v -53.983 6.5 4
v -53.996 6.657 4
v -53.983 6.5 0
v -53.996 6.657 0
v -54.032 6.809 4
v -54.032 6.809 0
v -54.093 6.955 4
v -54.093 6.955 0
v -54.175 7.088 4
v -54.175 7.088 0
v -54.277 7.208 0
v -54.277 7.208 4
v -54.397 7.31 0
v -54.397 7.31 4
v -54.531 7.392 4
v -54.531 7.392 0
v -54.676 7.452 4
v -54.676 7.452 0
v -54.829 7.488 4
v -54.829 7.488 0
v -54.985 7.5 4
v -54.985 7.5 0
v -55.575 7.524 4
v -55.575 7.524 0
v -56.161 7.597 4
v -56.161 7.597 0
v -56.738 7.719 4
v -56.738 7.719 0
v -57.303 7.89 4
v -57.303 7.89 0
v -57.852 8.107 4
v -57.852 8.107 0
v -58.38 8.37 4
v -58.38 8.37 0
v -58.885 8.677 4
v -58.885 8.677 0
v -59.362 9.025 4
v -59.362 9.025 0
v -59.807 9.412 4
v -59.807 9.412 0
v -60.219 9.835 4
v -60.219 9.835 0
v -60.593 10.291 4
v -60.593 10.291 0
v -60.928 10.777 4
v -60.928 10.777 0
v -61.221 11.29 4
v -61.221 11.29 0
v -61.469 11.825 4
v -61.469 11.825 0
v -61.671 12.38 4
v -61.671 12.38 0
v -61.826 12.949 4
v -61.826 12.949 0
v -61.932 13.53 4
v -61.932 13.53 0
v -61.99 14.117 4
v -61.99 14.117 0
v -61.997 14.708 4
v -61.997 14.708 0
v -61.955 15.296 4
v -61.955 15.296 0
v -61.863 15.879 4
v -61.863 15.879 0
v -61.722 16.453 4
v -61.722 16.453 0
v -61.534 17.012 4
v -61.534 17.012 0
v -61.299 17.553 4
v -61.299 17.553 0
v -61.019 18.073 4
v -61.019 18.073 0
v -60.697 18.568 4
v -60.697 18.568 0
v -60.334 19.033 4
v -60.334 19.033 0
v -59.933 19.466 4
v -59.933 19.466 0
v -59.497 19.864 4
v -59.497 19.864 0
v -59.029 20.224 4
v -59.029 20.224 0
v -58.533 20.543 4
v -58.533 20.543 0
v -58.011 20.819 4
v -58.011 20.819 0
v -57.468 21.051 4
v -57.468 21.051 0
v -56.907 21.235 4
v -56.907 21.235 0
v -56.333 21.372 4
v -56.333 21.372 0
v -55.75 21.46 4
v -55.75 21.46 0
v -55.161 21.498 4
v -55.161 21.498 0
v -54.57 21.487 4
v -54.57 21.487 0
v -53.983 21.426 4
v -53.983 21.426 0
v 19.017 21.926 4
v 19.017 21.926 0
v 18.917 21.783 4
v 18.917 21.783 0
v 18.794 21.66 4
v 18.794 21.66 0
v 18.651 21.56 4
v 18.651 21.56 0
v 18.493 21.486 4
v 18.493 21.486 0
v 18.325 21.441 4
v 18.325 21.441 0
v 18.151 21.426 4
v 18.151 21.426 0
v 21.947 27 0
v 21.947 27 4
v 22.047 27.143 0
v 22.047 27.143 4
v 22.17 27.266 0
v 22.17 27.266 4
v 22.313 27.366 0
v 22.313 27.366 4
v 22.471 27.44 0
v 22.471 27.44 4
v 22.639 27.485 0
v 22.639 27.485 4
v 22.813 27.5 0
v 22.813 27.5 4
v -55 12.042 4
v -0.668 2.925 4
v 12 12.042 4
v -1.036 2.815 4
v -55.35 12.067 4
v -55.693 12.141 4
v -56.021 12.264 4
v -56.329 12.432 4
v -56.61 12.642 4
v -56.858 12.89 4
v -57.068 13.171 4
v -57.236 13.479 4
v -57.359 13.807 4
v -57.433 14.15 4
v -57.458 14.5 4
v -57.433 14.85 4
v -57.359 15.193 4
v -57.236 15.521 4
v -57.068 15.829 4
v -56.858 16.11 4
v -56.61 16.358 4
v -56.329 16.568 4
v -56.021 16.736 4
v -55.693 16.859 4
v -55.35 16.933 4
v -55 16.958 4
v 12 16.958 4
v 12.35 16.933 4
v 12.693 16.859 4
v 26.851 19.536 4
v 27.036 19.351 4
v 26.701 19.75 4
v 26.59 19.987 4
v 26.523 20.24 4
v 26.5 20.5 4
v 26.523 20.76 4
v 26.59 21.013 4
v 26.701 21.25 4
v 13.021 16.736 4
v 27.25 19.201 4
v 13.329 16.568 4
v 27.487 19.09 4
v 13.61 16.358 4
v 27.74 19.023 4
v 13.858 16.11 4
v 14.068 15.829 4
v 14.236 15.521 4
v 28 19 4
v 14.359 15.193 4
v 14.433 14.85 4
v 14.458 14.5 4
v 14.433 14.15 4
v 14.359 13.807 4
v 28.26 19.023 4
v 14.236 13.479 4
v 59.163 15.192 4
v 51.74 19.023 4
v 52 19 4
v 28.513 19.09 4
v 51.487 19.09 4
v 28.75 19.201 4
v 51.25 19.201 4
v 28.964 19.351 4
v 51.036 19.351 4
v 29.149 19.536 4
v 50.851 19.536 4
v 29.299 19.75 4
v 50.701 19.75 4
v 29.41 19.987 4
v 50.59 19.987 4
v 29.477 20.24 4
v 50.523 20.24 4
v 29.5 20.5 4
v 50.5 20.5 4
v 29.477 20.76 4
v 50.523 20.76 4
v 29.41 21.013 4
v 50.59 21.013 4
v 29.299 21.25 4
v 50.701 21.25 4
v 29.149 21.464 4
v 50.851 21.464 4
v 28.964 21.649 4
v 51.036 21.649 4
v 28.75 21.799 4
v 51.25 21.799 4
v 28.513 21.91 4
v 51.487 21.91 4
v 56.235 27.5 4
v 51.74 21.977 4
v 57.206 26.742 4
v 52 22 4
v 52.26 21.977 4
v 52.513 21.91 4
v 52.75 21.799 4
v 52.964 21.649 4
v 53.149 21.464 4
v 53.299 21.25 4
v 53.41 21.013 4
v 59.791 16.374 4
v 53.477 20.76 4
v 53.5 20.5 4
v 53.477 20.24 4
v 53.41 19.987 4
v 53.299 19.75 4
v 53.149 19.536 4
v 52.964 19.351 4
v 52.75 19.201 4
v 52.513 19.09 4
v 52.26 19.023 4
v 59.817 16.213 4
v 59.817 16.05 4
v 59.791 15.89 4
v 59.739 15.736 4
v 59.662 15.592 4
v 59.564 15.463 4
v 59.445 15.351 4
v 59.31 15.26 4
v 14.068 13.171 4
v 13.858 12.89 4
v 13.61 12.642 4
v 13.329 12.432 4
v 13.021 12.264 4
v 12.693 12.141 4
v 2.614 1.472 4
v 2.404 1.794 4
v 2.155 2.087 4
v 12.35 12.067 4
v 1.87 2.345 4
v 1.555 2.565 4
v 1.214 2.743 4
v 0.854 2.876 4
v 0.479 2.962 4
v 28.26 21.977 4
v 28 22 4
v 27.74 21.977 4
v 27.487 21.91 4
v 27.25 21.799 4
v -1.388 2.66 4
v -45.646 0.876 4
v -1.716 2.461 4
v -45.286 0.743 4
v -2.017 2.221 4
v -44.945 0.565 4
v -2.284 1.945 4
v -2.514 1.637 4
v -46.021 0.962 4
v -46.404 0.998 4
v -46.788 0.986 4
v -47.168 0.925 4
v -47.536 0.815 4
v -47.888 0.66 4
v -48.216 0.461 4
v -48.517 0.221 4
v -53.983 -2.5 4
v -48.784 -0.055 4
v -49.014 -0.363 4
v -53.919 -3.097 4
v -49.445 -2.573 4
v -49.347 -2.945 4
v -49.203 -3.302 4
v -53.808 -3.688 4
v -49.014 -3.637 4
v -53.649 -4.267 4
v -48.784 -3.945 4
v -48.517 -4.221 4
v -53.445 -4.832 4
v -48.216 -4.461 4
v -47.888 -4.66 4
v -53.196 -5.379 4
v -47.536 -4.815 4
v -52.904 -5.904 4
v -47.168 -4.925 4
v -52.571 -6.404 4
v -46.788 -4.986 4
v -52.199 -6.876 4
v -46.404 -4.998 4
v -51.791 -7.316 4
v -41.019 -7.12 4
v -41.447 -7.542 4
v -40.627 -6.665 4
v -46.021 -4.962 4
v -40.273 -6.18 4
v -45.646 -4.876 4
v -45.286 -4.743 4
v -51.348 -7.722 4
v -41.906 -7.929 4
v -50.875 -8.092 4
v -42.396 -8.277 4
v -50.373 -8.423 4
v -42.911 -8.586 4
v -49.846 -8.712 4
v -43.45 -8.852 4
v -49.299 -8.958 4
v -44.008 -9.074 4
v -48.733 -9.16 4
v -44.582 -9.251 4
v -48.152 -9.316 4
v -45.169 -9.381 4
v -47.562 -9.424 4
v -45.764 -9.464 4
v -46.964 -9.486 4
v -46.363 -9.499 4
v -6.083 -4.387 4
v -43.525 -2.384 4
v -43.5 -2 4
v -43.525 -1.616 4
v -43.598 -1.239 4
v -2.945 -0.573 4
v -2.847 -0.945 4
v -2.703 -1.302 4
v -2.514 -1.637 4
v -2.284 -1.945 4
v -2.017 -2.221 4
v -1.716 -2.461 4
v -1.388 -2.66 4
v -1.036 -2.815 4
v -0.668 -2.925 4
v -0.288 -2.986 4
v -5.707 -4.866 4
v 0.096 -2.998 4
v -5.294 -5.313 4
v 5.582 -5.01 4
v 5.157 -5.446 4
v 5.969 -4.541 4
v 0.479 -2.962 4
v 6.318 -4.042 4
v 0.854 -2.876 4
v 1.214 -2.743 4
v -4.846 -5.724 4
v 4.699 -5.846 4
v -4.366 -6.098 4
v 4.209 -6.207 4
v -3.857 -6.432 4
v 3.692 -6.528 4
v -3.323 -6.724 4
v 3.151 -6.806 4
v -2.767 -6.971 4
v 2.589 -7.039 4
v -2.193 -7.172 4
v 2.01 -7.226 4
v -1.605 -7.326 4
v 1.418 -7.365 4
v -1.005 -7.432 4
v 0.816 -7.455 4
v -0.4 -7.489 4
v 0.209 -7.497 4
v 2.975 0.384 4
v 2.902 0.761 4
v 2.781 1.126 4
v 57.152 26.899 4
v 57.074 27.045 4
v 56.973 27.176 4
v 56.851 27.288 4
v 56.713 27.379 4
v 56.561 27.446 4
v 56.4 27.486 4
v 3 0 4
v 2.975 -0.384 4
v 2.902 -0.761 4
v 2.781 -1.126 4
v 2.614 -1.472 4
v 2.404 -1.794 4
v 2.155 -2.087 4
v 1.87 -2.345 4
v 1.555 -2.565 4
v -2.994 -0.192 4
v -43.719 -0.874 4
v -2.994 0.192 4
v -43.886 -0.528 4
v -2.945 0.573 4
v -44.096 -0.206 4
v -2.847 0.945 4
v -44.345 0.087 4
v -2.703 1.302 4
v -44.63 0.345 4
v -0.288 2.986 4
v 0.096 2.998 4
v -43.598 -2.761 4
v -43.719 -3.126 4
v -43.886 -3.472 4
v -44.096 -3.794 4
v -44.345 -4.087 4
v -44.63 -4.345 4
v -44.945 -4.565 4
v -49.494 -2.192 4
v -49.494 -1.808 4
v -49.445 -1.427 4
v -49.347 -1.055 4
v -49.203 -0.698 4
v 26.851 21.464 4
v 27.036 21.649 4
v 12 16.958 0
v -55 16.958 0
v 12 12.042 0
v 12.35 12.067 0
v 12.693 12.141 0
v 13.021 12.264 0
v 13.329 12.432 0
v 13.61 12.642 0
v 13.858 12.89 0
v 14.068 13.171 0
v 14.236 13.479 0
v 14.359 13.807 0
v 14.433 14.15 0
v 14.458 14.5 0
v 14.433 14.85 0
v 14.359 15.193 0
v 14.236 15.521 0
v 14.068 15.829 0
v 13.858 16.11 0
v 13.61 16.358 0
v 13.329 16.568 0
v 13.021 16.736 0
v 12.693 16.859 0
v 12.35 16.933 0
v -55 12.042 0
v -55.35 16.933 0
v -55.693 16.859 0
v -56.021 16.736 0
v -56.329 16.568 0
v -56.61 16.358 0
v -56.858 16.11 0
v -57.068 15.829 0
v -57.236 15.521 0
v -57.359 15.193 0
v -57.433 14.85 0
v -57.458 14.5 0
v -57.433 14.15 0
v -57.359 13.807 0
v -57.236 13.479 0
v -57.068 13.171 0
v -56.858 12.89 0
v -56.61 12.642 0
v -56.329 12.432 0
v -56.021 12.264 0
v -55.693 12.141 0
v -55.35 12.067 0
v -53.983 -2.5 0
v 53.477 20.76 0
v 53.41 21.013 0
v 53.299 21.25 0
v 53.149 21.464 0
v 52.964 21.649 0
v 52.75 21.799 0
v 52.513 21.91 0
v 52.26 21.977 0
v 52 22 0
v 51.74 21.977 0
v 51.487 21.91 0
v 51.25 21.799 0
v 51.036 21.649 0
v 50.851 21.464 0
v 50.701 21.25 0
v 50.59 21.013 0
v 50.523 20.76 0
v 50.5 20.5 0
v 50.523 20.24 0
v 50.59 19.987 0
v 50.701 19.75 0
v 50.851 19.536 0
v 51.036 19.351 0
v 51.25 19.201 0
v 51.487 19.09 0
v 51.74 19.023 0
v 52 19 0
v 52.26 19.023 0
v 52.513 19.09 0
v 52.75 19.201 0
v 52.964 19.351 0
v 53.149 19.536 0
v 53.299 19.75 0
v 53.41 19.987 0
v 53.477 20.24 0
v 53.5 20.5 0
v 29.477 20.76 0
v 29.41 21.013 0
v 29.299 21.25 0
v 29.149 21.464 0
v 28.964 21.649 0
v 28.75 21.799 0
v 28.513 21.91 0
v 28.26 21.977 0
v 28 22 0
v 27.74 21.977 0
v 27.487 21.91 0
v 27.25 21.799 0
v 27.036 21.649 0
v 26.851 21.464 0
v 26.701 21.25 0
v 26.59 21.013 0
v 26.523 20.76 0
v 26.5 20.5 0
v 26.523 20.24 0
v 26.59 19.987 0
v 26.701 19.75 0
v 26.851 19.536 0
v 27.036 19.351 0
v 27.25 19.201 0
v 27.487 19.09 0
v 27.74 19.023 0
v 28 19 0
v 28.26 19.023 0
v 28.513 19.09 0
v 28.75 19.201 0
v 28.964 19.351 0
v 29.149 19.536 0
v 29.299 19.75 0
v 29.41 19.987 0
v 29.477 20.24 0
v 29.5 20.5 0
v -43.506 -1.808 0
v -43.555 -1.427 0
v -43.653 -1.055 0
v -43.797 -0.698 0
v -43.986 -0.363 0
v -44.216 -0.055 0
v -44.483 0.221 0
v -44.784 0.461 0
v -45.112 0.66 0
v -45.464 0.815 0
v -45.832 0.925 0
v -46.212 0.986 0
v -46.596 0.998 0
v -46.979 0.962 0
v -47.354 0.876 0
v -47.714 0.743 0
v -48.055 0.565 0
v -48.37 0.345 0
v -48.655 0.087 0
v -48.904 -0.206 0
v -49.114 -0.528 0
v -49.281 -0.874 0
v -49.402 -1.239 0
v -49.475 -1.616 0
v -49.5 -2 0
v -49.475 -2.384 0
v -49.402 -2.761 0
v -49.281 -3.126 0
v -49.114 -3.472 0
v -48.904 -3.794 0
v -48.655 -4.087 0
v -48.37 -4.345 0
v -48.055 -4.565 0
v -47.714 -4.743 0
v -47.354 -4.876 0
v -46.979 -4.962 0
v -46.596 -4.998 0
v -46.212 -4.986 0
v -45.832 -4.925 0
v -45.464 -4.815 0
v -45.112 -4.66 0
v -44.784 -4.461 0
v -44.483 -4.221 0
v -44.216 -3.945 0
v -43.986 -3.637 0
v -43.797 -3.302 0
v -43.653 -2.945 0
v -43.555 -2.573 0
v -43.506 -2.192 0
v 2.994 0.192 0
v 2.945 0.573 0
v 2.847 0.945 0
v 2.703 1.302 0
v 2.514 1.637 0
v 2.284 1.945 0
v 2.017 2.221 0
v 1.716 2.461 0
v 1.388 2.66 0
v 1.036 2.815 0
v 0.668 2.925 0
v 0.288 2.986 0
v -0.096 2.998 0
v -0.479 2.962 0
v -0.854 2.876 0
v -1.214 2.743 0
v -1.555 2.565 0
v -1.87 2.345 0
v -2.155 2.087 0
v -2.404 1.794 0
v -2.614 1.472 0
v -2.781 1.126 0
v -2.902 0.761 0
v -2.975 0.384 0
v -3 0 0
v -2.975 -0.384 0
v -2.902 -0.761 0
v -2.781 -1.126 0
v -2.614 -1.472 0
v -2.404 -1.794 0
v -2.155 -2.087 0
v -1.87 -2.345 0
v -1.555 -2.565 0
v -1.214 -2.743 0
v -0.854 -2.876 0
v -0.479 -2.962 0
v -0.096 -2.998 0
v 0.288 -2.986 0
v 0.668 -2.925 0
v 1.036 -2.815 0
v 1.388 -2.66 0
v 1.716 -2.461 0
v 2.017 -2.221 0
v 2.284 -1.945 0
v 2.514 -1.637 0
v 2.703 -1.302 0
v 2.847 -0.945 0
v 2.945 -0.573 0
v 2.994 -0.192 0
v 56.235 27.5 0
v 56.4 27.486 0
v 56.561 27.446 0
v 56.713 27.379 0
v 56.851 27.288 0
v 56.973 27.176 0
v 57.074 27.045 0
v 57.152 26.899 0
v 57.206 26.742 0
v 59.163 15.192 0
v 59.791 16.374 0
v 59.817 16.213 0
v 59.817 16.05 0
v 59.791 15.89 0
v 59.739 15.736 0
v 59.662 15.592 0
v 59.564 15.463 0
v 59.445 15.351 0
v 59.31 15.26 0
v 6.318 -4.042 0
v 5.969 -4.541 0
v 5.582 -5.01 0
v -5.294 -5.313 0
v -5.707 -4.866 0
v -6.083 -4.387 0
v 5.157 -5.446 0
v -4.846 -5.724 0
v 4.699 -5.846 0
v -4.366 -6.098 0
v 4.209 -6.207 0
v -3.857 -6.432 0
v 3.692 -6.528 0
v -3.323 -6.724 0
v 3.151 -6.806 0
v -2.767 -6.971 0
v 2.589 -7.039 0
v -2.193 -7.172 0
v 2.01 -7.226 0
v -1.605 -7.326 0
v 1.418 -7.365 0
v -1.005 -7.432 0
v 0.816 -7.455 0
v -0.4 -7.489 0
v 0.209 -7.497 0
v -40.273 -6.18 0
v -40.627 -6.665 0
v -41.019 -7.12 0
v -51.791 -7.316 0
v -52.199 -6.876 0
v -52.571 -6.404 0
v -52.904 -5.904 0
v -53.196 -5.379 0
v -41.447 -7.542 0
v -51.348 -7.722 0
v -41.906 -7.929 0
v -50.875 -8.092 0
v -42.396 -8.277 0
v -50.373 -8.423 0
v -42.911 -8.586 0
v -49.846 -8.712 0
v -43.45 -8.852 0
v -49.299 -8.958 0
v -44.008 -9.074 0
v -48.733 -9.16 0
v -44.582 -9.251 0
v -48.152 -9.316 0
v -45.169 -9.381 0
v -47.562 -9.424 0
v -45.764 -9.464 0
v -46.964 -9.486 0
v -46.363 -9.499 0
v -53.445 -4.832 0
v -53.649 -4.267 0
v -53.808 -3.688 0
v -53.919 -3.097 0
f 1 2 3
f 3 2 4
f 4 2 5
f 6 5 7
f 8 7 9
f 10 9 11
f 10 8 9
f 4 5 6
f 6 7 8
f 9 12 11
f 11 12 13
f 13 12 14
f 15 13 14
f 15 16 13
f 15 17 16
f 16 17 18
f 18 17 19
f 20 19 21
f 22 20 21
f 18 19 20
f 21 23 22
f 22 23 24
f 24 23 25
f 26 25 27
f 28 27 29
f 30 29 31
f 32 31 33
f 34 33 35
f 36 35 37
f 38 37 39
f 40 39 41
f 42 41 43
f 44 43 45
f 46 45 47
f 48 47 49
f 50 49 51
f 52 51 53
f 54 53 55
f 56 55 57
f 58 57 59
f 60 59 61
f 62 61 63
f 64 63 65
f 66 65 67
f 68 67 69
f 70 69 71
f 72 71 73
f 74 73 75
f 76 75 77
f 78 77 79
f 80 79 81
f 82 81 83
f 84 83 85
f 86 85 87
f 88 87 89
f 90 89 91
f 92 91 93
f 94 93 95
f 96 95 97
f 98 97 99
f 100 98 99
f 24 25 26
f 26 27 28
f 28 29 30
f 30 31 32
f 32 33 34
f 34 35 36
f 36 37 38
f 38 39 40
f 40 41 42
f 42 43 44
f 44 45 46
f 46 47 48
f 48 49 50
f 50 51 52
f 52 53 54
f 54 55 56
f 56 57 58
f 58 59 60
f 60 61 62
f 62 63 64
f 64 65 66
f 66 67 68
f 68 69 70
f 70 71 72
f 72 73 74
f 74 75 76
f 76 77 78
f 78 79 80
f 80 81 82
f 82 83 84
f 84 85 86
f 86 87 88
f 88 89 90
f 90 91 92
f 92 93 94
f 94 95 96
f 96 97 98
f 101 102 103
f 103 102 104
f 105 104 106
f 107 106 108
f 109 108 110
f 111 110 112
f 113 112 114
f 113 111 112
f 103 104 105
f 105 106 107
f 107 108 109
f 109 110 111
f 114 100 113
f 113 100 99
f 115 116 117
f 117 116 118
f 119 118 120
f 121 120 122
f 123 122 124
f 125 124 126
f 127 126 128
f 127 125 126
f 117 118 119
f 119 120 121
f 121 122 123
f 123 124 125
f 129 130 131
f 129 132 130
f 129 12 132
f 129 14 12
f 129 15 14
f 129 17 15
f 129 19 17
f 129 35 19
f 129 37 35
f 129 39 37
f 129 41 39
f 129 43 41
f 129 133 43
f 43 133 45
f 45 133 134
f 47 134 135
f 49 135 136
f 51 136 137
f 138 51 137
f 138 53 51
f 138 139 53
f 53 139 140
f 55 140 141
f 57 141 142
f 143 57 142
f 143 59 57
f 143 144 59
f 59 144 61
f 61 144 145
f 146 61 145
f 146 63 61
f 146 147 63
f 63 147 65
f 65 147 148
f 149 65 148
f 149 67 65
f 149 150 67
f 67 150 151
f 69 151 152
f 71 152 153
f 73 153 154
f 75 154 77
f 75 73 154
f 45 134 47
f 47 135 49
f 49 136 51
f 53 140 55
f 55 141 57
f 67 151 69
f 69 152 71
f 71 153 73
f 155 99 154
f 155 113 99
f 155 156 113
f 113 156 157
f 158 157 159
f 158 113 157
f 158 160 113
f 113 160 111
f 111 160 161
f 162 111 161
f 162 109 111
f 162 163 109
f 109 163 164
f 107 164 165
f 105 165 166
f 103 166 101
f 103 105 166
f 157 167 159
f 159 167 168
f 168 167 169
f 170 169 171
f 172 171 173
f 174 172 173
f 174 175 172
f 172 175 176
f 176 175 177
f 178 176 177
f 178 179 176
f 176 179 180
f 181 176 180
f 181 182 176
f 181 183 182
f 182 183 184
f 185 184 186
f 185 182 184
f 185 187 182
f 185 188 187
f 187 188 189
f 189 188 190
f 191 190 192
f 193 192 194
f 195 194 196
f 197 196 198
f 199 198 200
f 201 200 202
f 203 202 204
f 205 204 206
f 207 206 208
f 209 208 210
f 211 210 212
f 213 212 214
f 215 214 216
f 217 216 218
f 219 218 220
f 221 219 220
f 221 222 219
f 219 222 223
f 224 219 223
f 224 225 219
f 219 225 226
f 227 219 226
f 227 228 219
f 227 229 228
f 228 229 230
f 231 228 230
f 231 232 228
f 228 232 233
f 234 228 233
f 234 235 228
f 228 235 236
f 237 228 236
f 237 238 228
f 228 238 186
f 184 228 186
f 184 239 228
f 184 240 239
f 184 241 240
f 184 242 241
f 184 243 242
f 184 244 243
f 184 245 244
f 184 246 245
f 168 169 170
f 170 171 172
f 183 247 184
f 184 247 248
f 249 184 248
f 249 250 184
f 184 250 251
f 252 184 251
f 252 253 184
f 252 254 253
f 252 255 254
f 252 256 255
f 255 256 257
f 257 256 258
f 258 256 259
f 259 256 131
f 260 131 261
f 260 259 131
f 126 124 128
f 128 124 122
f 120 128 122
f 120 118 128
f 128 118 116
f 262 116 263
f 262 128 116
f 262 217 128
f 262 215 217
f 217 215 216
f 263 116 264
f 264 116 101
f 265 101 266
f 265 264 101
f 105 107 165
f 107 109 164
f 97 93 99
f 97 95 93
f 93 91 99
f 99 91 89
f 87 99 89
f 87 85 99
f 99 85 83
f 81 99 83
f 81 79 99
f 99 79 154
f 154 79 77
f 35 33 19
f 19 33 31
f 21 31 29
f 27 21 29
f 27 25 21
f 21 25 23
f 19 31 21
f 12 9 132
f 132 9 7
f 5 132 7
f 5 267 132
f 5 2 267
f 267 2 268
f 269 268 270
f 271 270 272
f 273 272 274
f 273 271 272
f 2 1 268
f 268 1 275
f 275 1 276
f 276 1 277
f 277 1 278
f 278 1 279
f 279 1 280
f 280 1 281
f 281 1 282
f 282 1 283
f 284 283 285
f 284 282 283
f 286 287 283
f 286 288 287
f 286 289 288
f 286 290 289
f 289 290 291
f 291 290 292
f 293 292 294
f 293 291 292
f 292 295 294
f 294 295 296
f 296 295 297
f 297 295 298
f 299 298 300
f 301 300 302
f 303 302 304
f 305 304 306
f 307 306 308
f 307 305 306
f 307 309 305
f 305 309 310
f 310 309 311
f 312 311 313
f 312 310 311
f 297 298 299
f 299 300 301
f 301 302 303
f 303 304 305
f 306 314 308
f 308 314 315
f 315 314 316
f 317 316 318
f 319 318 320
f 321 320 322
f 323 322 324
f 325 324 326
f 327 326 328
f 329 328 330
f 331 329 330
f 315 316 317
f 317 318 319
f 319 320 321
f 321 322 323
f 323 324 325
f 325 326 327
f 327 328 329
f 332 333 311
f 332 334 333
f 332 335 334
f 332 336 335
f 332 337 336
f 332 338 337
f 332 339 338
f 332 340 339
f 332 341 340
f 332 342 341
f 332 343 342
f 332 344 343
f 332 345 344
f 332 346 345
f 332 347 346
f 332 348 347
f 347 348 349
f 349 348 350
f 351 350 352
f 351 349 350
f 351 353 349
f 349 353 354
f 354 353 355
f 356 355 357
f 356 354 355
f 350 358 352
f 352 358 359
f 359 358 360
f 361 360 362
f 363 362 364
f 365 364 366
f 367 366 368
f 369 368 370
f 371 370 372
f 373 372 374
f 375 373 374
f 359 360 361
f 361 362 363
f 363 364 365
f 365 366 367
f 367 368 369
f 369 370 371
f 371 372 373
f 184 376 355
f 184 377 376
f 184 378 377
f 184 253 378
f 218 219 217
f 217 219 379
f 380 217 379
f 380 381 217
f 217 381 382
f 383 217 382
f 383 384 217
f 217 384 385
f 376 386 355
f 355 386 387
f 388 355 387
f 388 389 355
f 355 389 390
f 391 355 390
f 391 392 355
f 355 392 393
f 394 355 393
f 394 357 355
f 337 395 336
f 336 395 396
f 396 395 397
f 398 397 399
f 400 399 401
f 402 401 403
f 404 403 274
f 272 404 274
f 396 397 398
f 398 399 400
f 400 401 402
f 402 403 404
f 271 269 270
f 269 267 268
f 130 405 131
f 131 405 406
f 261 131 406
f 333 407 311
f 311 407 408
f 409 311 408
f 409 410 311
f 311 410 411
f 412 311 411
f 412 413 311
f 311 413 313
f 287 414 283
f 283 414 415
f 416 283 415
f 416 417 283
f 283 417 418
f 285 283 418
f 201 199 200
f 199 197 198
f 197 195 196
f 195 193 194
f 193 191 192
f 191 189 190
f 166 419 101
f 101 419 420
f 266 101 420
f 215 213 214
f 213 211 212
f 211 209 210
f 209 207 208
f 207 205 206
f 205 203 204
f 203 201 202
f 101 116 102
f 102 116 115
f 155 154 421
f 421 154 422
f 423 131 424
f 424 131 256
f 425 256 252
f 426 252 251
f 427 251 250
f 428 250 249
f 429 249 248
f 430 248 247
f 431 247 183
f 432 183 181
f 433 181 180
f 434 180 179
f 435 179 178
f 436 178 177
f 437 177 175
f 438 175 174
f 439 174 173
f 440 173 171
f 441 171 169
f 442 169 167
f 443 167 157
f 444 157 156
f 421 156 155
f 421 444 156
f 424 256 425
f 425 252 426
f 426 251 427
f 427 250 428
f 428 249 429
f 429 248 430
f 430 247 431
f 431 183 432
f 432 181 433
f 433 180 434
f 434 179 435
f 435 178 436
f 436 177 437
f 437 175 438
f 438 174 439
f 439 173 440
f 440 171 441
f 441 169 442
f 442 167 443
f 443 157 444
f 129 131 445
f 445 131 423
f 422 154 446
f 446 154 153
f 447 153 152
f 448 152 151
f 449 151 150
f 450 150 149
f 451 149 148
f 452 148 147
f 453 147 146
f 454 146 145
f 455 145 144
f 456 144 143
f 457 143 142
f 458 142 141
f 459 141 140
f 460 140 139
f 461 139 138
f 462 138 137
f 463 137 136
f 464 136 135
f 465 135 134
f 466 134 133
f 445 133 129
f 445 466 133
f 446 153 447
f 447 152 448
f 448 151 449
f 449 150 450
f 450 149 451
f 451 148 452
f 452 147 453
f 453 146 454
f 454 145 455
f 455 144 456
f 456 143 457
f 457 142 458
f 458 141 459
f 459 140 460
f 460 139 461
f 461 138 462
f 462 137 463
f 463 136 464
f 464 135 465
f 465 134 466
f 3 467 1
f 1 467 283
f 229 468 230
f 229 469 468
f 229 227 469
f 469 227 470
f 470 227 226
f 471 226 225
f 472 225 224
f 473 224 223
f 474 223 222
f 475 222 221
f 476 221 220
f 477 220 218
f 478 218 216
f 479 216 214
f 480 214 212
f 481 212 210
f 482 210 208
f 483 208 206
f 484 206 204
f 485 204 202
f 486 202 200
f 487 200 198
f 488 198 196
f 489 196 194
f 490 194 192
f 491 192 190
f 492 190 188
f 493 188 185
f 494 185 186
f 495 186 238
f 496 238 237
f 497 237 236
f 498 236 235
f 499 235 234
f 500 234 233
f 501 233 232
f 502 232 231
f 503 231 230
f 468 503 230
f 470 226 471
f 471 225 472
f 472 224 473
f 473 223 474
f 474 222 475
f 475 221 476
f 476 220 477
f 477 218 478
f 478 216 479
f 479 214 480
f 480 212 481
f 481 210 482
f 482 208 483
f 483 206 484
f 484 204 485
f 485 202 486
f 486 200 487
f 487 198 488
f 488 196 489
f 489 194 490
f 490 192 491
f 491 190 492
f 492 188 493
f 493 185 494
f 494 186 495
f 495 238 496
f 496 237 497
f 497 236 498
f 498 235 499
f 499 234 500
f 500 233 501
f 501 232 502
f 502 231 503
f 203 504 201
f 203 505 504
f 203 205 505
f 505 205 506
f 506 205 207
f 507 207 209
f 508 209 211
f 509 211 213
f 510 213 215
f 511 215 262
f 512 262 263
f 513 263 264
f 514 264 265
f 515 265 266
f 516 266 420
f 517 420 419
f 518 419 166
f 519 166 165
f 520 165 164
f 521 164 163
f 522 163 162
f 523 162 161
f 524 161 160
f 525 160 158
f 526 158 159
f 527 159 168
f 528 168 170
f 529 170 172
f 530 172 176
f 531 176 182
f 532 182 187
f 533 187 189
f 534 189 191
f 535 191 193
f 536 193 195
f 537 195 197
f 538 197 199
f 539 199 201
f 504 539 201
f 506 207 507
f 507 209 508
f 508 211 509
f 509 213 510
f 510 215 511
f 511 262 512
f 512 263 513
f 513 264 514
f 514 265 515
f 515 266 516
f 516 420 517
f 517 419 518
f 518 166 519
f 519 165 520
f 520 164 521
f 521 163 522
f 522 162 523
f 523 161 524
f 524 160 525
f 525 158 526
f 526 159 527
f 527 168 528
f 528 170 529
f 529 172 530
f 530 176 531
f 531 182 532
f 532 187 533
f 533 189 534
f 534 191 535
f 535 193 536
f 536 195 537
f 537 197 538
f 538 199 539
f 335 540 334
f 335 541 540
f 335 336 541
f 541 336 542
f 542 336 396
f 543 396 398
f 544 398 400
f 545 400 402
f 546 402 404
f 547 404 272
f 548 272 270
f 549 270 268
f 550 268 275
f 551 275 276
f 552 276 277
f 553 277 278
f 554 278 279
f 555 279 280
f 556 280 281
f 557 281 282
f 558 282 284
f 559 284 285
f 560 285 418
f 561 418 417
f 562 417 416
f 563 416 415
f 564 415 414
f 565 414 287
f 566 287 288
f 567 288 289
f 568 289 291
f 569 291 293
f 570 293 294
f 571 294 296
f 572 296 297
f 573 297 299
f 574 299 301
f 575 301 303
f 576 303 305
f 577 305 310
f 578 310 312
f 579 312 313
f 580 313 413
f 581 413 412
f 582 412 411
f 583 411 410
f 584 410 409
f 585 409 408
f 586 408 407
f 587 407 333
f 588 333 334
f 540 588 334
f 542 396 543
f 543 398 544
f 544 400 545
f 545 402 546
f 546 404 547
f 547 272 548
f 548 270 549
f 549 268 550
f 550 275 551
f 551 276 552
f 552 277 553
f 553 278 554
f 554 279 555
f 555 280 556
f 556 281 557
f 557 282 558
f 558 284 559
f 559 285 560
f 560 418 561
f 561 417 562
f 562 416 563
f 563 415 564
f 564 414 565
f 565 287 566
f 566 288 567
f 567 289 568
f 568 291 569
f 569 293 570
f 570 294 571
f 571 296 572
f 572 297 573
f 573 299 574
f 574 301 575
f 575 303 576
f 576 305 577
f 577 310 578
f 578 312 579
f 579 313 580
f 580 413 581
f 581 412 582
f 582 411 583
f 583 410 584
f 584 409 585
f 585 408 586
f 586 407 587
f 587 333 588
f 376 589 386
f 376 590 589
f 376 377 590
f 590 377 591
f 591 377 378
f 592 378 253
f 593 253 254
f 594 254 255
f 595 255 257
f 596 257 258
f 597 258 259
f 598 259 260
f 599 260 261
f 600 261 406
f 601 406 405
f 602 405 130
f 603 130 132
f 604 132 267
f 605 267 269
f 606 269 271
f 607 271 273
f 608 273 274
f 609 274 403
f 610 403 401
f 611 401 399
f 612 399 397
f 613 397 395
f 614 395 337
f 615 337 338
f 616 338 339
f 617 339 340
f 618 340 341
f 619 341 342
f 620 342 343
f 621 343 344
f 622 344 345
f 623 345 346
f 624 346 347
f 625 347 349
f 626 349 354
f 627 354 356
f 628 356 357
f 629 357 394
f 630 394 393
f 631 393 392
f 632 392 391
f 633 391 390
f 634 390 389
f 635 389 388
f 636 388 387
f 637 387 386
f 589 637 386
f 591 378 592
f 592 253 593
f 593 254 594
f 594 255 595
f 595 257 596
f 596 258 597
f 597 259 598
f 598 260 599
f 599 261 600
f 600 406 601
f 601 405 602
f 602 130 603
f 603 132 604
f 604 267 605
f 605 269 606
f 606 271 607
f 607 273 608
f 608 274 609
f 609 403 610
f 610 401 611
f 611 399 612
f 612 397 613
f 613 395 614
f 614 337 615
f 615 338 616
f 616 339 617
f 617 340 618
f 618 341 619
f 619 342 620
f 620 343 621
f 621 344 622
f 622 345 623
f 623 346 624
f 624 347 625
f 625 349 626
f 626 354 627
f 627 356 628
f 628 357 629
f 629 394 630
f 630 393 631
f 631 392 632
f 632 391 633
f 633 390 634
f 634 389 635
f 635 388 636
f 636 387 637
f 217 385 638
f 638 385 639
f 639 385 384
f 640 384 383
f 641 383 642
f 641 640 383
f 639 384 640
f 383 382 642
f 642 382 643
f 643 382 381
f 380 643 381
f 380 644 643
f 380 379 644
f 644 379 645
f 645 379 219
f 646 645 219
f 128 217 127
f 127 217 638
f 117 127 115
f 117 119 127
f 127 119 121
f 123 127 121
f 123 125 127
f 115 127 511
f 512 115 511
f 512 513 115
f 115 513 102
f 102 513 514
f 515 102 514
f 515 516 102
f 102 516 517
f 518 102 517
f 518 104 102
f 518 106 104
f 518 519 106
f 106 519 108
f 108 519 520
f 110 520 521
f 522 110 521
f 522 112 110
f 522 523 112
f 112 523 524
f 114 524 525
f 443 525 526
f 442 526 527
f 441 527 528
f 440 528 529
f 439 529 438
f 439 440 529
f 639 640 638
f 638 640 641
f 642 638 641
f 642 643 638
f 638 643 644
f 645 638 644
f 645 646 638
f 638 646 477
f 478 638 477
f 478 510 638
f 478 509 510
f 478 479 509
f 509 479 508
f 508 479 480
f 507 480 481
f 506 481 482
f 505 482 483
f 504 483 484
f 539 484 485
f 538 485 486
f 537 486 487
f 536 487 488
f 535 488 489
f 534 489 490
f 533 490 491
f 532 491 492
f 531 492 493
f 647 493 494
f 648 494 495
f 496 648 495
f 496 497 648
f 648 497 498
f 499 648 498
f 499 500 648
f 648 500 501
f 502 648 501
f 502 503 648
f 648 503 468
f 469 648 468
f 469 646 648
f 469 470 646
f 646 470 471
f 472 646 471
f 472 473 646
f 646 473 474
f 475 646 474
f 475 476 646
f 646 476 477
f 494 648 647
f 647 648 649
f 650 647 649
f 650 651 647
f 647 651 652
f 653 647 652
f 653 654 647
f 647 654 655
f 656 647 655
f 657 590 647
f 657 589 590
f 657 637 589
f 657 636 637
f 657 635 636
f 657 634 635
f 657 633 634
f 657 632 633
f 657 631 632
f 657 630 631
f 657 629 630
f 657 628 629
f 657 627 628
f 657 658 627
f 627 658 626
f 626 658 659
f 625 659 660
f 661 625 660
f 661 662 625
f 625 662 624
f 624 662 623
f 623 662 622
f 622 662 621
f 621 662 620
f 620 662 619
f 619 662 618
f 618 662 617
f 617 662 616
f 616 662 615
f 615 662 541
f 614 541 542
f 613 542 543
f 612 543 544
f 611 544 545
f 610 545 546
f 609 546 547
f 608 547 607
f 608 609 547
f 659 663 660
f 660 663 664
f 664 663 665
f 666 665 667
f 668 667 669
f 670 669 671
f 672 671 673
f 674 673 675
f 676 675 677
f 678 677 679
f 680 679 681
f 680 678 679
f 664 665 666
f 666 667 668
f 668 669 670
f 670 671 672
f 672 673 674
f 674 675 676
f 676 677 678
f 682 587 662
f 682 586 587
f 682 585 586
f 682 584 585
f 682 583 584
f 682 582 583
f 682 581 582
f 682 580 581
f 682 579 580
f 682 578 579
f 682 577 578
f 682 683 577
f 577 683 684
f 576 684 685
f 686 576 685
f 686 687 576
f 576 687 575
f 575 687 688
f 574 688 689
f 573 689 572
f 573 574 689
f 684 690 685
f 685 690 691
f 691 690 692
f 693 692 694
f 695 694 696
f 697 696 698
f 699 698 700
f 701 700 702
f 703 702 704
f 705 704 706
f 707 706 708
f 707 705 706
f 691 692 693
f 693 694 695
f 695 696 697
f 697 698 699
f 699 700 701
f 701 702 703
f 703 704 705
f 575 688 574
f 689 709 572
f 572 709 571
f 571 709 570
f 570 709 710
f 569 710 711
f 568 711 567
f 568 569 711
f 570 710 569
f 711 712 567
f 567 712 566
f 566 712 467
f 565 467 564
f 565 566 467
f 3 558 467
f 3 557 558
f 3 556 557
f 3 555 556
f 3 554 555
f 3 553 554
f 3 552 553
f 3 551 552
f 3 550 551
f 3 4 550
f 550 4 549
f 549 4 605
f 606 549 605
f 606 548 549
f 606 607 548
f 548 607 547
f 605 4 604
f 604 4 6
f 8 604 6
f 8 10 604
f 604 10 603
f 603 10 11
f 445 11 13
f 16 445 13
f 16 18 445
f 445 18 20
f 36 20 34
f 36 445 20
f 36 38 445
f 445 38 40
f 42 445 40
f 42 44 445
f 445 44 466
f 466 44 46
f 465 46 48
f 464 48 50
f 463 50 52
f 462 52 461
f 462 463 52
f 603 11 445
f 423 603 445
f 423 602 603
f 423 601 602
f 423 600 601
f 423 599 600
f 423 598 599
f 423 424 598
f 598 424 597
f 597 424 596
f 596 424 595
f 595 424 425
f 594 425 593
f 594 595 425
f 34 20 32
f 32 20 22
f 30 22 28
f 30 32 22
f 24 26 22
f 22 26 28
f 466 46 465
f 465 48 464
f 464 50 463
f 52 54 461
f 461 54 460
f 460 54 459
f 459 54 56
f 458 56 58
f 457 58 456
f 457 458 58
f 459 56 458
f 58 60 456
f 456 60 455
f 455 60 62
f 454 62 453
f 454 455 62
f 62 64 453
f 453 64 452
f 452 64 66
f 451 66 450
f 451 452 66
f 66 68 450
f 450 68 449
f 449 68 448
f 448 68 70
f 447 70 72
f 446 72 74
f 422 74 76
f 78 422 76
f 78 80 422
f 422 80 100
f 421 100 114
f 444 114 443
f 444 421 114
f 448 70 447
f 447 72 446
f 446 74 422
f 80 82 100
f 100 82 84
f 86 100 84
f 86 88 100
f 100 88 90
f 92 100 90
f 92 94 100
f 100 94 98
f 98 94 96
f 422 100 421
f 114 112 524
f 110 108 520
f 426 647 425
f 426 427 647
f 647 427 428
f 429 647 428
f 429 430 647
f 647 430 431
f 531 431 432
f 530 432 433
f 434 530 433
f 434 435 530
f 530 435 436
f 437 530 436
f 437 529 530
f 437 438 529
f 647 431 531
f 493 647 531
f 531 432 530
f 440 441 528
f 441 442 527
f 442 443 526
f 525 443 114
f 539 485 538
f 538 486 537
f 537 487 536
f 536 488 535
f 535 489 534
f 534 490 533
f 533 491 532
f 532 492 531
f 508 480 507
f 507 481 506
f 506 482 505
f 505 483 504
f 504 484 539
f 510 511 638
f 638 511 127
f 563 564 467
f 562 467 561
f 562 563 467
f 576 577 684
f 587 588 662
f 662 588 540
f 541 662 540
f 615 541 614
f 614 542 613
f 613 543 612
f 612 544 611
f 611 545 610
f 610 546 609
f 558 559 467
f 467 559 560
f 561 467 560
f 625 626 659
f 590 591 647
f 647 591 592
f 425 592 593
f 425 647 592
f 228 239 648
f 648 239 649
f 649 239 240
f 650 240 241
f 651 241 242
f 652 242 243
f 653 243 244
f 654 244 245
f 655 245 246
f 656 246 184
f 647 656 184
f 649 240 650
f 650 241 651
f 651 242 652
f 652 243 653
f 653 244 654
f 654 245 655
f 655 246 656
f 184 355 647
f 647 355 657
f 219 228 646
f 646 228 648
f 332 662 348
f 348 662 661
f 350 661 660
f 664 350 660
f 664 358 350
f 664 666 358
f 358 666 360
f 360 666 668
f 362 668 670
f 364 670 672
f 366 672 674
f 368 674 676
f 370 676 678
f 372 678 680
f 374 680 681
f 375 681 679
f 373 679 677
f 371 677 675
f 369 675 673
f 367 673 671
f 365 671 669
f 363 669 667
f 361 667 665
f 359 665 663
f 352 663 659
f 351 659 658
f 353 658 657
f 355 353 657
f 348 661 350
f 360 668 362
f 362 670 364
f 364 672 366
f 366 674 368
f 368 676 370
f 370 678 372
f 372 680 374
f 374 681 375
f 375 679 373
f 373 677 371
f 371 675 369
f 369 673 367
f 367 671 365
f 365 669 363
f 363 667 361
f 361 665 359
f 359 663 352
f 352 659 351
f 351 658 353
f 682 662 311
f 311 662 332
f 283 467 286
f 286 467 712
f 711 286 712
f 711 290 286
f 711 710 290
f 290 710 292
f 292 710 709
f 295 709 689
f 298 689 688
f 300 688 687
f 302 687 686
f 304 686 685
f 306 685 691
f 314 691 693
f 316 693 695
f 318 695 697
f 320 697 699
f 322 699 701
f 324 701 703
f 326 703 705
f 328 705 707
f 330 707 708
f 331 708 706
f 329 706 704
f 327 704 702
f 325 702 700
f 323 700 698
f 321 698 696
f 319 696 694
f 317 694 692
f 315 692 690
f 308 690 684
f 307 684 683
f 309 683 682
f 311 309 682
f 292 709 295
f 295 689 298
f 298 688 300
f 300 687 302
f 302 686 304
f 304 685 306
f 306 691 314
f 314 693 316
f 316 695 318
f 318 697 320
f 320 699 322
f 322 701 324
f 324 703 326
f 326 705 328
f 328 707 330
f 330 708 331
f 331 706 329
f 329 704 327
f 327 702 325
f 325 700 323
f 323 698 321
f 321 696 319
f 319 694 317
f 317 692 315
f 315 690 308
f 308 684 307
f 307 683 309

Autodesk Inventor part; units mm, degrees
ref_plane "YZ Plane" through (0, 0, 0) normal (1, 0, 0) x (0, 1, 0)
ref_plane "XZ Plane" through (0, 0, 0) normal (0, 1, 0) x (-1, 0, 0)
ref_plane "XY Plane" through (0, 0, 0) normal (0, 0, 1) x (1, 0, 0)
sketch "Base" plane through (0, 0, 0) normal (0, 0, 1) x (1, 0, 0)
  arc A0 (-53.9833, -2.5) -> (-40.2726, -6.1797) centre (-46.5, -2) ccw
  line L0 (-6.0829, -4.3873) -> (-40.2726, -6.1797)
  arc A1 (-6.0829, -4.3873) -> (6.3177, -4.0419) centre (0, 0) ccw
  line L1 (60.0086, 15.5) -> (6.3177, -4.0419)
  circle A2 centre (52, 20.5) radius 1.5 construction
  circle A3 centre (28, 20.5) radius 1.5 construction
  line L2 (57.0167, 27.5) -> (60.0086, 15.5)
  line L3 (57.0167, 27.5) -> (-53.9833, 27.5)
  line L4 (-53.9833, -2.5) -> (-53.9833, 27.5)
  line L5 (52, 20.5) -> (28, 20.5) construction
  dimension "d3" = 24
  dimension "d4" = 3
  dimension "d7" = 104
  dimension "d16" = 20
  dimension "d17" = 111
  dimension "d19" = 30
  dimension "d22" = 86.999
  dimension "d25" = 28
  dimension "d26" = 7.5
  dimension "d31" = 27.5
  dimension "d32" = 12
  dimension "d45" = 46.5
  dimension "d46" = 2
  dimension "d47" = 4.5
  dimension "d64" = 7
extrude "BaseFeature" add sketch "Base" along normal blind 4
fillet "EndFilletsFeature" radius 1 2 edges at (60.0086, 15.5, 2) (57.0167, 27.5, 2)
sketch "BaseMountHoles" plane through (0, 0, 0) normal (0, 0, -1) x (-1, 0, 0)
  arc A0 (40.2726, -6.1797) -> (53.9833, -2.5) centre (46.5, -2) ccw projected
  point P0 (0, 0)
hole "BaseMountHolesFeature" at (-46.5, -2, 0) at (0, 0, 0) direction (0, 0, 1) diameter 6 end through all
sketch "CuffMountHoles" plane through (0, 0, 0) normal (0, 0, -1) x (-1, 0, 0)
  circle A0 centre (-52, 20.5) radius 1.5 construction
  circle A1 centre (-28, 20.5) radius 1.5 construction
  point P0 (0, 0)
hole "CuffMountHolesFeature" at (52, 20.5, 0) at (28, 20.5, 0) direction (0, 0, 1) diameter 3 end through all
sketch "ExternalAssemblyGeometry" plane through (0, 0, 4) normal (0, 0, 1) x (1, 0, 0)
  circle A0 centre (-4.2211, 14.5) radius 2.4585 construction
  circle A1 centre (-12.2211, 14.5) radius 2.4585 construction
  circle A2 centre (-33.6105, 14.5) radius 2.4585 construction
  circle A3 centre (-55, 14.5) radius 2.4585 construction
  line L0 (16.9953, 21.5) -> (-152.0047, 21.5) construction
  line L1 (-55, 14.5) -> (12, 14.5) construction
  circle A4 centre (-55, 14.5) radius 7
  line L2 (-53.9833, 27.5) -> (56.2354, 27.5) projected
  line L3 (-53.9833, -2.5) -> (-53.9833, 27.5) projected
  dimension "d57" = 67
  dimension "d72" = 14
  dimension "d73" = 6
  dimension "d74" = 169
  dimension "d75" = 4.917
  dimension "d76" = 8
  dimension "d77" = 1.0167
  dimension "d78" = 21.3895
  dimension "d79" = 21.3895
  dimension "d80" = 70.9786
extrude "MountRailEndFeature" add sketch "ExternalAssemblyGeometry" against normal up to surface (4 mm away)
sketch "MountRail" plane through (0, 0, 0) normal (0, 0, -1) x (-1, 0, 0)
  line L0 (55, 14.5) -> (-12, 14.5) construction
  circle A0 centre (55, 14.5) radius 2.4585 construction
  circle A1 centre (-12, 14.5) radius 2.4585
  circle A2 centre (55, 14.5) radius 2.4585
  line L1 (55, 12.0415) -> (-12, 12.0415)
  line L2 (55, 16.9585) -> (-12, 16.9585)
  point P0 (0, 0)
extrude "MountRailFeature" cut sketch "MountRail" against normal through all
sketch "TopAngleCut" plane through (0, 0, 0) normal (0, 0, -1) x (-1, 0, 0)
  line L0 (53.9833, 27.5) -> (-56.2354, 27.5) construction
  line L1 (-22.2354, 27.5) -> (-18.7284, 21.4258)
  line L2 (53.9833, 21.4258) -> (-18.7284, 21.4258)
  line L3 (-22.2354, 27.5) -> (53.9833, 27.5)
  line L4 (53.9833, 21.4258) -> (53.9833, 27.5)
  line L5 (53.9833, 21.4258) -> (53.9833, 27.5) projected
  point P0 (0, 0)
  point P1 (-57.0167, 27.5)
  dimension "d65" = 120
  dimension "d66" = 34
extrude "TopAngleCutFeature" cut sketch "TopAngleCut" against normal through all
fillet "TopAngleCutFilletsFeature" radius 1 2 edges at (22.2354, 27.5, 2) (18.7284, 21.4258, 2)
fillet "BodyFilletFeature" radius 1 2 edges at (-53.9833, 21.4258, 2) (-53.9833, 7.5742, 2)
properties part number "ForearmLeftEnd"
